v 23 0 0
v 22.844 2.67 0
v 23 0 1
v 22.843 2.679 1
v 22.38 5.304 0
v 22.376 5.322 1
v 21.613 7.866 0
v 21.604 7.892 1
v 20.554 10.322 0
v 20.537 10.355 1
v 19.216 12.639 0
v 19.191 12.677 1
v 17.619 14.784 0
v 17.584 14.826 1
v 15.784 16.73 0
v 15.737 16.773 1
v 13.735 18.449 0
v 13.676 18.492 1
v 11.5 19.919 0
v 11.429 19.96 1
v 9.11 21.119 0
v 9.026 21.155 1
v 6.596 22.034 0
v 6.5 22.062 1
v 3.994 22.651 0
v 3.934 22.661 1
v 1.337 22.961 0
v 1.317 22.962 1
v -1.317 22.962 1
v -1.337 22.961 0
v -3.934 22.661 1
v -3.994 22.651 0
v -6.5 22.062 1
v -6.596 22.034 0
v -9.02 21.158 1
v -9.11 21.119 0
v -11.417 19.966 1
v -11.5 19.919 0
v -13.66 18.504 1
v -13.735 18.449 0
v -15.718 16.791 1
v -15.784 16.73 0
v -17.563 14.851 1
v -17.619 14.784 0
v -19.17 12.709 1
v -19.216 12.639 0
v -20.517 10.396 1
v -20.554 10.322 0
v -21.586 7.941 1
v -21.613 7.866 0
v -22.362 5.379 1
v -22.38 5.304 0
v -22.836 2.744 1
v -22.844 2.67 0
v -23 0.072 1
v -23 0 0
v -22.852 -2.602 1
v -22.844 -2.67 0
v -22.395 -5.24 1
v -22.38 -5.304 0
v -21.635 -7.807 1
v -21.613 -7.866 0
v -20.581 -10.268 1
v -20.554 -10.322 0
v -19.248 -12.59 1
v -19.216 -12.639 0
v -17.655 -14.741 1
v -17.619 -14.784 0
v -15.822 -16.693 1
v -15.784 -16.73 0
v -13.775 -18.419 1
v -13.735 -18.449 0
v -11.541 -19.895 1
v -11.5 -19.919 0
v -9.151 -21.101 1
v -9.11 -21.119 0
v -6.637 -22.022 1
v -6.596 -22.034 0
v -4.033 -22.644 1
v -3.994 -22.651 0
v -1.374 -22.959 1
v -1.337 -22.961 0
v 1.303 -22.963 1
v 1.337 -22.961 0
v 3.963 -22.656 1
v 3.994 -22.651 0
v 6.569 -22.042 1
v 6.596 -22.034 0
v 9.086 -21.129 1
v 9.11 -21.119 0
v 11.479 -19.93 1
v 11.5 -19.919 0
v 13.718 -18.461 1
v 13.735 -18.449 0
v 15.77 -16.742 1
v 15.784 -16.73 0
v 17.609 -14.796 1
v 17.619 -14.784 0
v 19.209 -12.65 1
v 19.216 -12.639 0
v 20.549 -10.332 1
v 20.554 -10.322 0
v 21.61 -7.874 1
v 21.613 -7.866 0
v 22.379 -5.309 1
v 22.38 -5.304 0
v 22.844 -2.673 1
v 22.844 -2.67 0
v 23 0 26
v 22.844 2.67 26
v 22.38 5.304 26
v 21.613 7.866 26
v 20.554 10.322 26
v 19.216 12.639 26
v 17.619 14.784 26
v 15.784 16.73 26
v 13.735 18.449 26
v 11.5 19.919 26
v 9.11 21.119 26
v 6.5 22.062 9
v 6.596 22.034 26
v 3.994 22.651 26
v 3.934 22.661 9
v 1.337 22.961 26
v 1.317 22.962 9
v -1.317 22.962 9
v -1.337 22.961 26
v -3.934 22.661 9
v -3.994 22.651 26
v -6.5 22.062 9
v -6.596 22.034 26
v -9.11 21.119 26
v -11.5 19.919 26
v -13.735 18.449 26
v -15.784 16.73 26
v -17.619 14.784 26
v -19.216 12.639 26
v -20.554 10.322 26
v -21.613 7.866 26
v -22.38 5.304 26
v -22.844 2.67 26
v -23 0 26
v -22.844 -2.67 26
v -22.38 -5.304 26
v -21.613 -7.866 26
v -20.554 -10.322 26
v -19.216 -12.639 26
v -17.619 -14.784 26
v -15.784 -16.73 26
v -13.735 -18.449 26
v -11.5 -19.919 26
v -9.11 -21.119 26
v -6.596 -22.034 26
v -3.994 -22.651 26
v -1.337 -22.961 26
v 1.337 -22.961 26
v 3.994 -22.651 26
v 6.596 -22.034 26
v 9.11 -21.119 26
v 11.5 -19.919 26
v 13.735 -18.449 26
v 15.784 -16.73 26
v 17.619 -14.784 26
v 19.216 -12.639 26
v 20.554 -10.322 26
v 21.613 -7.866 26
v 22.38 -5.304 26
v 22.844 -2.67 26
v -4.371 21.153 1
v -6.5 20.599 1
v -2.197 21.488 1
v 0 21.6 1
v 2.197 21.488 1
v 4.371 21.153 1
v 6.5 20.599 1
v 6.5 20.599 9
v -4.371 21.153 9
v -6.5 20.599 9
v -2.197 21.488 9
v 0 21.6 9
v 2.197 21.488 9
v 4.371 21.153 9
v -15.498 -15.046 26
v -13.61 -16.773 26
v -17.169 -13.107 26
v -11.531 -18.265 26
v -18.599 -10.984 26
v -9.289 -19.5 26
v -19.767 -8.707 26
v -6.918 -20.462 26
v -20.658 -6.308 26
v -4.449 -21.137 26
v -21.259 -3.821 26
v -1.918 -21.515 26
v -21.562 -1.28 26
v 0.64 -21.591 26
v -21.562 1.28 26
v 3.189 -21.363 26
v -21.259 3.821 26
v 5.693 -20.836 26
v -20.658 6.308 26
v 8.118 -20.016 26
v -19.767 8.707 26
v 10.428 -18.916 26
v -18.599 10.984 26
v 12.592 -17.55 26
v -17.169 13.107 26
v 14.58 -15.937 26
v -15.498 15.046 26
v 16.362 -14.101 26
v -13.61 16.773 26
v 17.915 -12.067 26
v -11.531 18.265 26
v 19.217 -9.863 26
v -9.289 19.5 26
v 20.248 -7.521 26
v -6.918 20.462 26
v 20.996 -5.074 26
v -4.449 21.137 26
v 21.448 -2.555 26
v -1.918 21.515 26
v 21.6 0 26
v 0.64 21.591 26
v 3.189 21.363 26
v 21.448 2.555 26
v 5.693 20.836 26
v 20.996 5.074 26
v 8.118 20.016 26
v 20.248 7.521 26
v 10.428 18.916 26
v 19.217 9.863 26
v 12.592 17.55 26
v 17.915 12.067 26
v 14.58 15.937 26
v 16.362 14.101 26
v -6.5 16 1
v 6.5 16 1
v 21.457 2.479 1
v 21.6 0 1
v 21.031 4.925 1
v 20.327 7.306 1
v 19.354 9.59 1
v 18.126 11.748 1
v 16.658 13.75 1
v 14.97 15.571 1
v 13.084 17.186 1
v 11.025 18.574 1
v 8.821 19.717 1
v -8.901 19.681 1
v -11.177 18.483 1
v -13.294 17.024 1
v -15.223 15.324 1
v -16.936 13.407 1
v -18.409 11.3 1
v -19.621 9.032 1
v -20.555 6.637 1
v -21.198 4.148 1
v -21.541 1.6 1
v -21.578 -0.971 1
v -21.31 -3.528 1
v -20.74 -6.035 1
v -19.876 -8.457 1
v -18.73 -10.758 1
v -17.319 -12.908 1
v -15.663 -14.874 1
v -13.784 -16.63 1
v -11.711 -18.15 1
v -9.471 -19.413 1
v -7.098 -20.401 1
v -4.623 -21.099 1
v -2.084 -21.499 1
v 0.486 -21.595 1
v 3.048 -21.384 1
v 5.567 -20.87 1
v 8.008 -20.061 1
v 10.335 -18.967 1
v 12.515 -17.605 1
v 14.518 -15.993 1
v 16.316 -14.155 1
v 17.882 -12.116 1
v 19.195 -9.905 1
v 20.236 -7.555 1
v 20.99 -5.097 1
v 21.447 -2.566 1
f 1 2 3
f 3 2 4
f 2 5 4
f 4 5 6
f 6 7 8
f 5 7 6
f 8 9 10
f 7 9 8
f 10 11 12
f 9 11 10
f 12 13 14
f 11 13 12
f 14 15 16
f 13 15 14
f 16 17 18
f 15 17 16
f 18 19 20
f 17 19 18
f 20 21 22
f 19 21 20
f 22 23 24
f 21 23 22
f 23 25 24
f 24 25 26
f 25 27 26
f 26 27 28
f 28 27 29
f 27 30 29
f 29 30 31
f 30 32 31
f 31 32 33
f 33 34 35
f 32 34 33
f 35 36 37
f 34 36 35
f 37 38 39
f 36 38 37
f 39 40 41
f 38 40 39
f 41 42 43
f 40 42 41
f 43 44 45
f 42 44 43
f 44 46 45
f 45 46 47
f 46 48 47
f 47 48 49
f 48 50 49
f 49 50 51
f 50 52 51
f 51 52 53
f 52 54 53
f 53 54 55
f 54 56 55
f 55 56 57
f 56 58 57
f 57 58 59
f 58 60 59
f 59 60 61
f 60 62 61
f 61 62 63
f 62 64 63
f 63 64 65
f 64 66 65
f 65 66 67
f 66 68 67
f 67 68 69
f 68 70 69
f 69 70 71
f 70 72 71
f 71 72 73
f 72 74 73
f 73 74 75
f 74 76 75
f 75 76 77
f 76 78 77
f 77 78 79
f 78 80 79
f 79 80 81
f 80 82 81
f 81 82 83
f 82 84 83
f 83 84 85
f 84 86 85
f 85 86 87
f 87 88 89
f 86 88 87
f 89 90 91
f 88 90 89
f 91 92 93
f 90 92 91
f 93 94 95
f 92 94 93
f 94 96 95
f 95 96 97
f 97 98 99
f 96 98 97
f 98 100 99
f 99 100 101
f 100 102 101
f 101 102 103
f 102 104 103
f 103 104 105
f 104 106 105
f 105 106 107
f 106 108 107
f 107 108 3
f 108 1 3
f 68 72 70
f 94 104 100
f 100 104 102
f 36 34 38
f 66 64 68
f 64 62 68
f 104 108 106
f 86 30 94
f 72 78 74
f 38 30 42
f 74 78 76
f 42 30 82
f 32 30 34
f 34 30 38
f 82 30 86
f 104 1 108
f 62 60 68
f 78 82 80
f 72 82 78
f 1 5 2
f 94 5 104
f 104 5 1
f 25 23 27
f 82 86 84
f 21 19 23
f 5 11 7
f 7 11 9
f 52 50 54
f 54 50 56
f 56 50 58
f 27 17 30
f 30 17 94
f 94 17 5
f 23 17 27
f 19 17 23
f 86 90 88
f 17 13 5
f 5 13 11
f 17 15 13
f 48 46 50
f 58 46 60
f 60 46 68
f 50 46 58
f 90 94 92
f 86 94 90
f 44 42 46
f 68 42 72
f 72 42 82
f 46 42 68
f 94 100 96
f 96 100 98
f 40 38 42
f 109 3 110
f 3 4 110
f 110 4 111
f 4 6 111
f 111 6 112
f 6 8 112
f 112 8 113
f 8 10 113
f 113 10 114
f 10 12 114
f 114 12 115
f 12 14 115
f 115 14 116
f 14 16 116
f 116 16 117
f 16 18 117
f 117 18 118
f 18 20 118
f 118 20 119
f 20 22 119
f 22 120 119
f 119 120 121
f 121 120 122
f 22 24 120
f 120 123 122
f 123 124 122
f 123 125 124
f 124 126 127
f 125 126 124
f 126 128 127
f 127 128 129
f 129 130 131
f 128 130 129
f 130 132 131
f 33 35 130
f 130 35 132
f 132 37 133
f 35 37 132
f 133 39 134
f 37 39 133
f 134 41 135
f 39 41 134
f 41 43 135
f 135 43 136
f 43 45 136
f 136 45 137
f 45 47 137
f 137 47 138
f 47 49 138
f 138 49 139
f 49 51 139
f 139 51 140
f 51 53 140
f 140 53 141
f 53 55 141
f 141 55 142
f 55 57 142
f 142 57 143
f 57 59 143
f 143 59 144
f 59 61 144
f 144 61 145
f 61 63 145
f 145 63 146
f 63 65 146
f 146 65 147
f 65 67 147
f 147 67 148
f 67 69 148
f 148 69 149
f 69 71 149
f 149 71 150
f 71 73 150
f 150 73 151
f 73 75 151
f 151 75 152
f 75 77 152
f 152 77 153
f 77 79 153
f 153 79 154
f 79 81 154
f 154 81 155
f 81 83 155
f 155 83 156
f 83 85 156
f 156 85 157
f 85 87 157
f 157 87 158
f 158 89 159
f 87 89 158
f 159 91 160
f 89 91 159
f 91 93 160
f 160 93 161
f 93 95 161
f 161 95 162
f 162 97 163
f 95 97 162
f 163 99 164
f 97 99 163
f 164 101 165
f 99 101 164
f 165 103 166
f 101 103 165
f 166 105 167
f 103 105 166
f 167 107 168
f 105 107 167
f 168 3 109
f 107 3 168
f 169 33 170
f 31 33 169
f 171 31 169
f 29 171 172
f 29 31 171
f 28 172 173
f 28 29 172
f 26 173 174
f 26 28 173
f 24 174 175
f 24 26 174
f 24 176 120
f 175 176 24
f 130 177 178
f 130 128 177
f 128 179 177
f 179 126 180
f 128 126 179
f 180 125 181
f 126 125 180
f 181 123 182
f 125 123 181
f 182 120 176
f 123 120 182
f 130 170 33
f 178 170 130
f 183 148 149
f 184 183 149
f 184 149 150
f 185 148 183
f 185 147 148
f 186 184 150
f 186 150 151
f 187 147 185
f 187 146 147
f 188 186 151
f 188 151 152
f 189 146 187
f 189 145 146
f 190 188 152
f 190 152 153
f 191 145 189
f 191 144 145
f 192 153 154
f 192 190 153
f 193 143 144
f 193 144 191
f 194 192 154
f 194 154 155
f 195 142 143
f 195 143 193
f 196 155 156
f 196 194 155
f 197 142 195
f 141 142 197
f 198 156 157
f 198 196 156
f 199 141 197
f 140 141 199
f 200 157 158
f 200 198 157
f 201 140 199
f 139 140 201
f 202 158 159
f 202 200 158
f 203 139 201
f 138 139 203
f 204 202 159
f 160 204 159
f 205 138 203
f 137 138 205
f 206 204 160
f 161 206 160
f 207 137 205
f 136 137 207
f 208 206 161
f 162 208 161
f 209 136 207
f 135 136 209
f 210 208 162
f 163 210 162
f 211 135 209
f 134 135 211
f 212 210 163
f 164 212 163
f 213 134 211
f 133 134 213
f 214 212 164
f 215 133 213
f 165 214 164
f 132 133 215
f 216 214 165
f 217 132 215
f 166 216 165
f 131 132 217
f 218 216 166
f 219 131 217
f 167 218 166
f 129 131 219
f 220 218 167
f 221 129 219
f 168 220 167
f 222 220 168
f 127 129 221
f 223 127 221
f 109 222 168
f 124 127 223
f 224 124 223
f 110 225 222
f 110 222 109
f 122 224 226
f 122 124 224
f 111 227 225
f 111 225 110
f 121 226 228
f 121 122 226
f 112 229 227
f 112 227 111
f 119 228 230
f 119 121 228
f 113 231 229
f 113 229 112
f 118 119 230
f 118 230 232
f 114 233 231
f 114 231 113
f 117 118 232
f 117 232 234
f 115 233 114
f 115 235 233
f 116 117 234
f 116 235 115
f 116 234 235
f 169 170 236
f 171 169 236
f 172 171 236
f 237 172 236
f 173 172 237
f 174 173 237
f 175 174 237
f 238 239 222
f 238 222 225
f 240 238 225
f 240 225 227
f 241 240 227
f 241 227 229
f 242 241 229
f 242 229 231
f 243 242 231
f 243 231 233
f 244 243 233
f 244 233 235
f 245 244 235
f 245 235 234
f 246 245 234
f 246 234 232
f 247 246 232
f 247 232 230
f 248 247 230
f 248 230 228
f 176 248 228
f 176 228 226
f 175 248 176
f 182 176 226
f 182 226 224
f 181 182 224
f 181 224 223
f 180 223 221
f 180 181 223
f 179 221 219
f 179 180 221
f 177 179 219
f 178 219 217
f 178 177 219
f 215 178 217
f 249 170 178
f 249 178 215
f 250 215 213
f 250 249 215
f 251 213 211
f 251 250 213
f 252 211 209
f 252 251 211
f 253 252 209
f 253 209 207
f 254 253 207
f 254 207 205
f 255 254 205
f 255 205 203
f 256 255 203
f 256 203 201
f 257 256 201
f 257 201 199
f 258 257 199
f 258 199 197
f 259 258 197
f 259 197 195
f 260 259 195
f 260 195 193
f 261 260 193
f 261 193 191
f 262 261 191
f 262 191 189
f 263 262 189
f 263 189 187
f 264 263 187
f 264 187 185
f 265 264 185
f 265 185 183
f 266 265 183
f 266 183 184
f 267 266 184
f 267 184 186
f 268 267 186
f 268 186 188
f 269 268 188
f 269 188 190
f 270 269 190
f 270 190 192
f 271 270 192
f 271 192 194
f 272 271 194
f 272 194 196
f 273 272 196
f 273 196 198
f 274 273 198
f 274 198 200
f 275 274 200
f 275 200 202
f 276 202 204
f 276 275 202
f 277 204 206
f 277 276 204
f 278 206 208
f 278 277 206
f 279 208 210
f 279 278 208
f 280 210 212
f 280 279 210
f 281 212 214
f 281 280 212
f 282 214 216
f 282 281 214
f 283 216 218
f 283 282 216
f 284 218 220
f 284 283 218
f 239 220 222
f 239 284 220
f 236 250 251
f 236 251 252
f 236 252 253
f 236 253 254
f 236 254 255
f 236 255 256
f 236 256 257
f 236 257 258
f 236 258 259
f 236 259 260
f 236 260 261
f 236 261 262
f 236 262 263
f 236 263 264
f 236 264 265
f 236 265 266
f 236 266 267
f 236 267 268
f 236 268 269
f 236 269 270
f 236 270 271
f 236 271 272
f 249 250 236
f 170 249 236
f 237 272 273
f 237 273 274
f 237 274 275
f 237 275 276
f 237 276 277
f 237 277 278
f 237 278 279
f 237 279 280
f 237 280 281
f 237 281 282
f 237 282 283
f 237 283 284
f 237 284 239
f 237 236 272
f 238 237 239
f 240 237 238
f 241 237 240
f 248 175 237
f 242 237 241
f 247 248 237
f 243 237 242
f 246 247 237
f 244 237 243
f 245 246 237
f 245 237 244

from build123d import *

# Parameters (mm, degrees)
BOX_W         = 13
BOX_H         = 10
BOX_DEPTH     = 8
SKETCH_R      = 23
PAD_DEPTH     = 1
SKETCH001_R   = 23
SKETCH001_R_2 = 21.6
PAD001_DEPTH  = 25


with BuildPart() as usb:
    # Box → Box (new body)
    with BuildSketch(Plane(origin=(-6.5, 16, 1), x_dir=(1, 0, 0), z_dir=(0, 0, 1))):
        with Locations((6.5, 5)):
            Rectangle(BOX_W, BOX_H)
    extrude(amount=BOX_DEPTH)


with BuildPart() as cut:
    # Sketch → Pad (new body)
    with BuildSketch(Plane.XY):
        Circle(SKETCH_R)
    extrude(amount=PAD_DEPTH)

    # Sketch001 (on Face3 of Pad) → Pad001 (join)
    with BuildSketch(Plane.XY.offset(1)):
        Circle(SKETCH001_R)
        Circle(SKETCH001_R_2, mode=Mode.SUBTRACT)
    extrude(amount=PAD001_DEPTH)

    # Cut: cut USB
    add(usb.part, mode=Mode.SUBTRACT)


solid = cut.part
